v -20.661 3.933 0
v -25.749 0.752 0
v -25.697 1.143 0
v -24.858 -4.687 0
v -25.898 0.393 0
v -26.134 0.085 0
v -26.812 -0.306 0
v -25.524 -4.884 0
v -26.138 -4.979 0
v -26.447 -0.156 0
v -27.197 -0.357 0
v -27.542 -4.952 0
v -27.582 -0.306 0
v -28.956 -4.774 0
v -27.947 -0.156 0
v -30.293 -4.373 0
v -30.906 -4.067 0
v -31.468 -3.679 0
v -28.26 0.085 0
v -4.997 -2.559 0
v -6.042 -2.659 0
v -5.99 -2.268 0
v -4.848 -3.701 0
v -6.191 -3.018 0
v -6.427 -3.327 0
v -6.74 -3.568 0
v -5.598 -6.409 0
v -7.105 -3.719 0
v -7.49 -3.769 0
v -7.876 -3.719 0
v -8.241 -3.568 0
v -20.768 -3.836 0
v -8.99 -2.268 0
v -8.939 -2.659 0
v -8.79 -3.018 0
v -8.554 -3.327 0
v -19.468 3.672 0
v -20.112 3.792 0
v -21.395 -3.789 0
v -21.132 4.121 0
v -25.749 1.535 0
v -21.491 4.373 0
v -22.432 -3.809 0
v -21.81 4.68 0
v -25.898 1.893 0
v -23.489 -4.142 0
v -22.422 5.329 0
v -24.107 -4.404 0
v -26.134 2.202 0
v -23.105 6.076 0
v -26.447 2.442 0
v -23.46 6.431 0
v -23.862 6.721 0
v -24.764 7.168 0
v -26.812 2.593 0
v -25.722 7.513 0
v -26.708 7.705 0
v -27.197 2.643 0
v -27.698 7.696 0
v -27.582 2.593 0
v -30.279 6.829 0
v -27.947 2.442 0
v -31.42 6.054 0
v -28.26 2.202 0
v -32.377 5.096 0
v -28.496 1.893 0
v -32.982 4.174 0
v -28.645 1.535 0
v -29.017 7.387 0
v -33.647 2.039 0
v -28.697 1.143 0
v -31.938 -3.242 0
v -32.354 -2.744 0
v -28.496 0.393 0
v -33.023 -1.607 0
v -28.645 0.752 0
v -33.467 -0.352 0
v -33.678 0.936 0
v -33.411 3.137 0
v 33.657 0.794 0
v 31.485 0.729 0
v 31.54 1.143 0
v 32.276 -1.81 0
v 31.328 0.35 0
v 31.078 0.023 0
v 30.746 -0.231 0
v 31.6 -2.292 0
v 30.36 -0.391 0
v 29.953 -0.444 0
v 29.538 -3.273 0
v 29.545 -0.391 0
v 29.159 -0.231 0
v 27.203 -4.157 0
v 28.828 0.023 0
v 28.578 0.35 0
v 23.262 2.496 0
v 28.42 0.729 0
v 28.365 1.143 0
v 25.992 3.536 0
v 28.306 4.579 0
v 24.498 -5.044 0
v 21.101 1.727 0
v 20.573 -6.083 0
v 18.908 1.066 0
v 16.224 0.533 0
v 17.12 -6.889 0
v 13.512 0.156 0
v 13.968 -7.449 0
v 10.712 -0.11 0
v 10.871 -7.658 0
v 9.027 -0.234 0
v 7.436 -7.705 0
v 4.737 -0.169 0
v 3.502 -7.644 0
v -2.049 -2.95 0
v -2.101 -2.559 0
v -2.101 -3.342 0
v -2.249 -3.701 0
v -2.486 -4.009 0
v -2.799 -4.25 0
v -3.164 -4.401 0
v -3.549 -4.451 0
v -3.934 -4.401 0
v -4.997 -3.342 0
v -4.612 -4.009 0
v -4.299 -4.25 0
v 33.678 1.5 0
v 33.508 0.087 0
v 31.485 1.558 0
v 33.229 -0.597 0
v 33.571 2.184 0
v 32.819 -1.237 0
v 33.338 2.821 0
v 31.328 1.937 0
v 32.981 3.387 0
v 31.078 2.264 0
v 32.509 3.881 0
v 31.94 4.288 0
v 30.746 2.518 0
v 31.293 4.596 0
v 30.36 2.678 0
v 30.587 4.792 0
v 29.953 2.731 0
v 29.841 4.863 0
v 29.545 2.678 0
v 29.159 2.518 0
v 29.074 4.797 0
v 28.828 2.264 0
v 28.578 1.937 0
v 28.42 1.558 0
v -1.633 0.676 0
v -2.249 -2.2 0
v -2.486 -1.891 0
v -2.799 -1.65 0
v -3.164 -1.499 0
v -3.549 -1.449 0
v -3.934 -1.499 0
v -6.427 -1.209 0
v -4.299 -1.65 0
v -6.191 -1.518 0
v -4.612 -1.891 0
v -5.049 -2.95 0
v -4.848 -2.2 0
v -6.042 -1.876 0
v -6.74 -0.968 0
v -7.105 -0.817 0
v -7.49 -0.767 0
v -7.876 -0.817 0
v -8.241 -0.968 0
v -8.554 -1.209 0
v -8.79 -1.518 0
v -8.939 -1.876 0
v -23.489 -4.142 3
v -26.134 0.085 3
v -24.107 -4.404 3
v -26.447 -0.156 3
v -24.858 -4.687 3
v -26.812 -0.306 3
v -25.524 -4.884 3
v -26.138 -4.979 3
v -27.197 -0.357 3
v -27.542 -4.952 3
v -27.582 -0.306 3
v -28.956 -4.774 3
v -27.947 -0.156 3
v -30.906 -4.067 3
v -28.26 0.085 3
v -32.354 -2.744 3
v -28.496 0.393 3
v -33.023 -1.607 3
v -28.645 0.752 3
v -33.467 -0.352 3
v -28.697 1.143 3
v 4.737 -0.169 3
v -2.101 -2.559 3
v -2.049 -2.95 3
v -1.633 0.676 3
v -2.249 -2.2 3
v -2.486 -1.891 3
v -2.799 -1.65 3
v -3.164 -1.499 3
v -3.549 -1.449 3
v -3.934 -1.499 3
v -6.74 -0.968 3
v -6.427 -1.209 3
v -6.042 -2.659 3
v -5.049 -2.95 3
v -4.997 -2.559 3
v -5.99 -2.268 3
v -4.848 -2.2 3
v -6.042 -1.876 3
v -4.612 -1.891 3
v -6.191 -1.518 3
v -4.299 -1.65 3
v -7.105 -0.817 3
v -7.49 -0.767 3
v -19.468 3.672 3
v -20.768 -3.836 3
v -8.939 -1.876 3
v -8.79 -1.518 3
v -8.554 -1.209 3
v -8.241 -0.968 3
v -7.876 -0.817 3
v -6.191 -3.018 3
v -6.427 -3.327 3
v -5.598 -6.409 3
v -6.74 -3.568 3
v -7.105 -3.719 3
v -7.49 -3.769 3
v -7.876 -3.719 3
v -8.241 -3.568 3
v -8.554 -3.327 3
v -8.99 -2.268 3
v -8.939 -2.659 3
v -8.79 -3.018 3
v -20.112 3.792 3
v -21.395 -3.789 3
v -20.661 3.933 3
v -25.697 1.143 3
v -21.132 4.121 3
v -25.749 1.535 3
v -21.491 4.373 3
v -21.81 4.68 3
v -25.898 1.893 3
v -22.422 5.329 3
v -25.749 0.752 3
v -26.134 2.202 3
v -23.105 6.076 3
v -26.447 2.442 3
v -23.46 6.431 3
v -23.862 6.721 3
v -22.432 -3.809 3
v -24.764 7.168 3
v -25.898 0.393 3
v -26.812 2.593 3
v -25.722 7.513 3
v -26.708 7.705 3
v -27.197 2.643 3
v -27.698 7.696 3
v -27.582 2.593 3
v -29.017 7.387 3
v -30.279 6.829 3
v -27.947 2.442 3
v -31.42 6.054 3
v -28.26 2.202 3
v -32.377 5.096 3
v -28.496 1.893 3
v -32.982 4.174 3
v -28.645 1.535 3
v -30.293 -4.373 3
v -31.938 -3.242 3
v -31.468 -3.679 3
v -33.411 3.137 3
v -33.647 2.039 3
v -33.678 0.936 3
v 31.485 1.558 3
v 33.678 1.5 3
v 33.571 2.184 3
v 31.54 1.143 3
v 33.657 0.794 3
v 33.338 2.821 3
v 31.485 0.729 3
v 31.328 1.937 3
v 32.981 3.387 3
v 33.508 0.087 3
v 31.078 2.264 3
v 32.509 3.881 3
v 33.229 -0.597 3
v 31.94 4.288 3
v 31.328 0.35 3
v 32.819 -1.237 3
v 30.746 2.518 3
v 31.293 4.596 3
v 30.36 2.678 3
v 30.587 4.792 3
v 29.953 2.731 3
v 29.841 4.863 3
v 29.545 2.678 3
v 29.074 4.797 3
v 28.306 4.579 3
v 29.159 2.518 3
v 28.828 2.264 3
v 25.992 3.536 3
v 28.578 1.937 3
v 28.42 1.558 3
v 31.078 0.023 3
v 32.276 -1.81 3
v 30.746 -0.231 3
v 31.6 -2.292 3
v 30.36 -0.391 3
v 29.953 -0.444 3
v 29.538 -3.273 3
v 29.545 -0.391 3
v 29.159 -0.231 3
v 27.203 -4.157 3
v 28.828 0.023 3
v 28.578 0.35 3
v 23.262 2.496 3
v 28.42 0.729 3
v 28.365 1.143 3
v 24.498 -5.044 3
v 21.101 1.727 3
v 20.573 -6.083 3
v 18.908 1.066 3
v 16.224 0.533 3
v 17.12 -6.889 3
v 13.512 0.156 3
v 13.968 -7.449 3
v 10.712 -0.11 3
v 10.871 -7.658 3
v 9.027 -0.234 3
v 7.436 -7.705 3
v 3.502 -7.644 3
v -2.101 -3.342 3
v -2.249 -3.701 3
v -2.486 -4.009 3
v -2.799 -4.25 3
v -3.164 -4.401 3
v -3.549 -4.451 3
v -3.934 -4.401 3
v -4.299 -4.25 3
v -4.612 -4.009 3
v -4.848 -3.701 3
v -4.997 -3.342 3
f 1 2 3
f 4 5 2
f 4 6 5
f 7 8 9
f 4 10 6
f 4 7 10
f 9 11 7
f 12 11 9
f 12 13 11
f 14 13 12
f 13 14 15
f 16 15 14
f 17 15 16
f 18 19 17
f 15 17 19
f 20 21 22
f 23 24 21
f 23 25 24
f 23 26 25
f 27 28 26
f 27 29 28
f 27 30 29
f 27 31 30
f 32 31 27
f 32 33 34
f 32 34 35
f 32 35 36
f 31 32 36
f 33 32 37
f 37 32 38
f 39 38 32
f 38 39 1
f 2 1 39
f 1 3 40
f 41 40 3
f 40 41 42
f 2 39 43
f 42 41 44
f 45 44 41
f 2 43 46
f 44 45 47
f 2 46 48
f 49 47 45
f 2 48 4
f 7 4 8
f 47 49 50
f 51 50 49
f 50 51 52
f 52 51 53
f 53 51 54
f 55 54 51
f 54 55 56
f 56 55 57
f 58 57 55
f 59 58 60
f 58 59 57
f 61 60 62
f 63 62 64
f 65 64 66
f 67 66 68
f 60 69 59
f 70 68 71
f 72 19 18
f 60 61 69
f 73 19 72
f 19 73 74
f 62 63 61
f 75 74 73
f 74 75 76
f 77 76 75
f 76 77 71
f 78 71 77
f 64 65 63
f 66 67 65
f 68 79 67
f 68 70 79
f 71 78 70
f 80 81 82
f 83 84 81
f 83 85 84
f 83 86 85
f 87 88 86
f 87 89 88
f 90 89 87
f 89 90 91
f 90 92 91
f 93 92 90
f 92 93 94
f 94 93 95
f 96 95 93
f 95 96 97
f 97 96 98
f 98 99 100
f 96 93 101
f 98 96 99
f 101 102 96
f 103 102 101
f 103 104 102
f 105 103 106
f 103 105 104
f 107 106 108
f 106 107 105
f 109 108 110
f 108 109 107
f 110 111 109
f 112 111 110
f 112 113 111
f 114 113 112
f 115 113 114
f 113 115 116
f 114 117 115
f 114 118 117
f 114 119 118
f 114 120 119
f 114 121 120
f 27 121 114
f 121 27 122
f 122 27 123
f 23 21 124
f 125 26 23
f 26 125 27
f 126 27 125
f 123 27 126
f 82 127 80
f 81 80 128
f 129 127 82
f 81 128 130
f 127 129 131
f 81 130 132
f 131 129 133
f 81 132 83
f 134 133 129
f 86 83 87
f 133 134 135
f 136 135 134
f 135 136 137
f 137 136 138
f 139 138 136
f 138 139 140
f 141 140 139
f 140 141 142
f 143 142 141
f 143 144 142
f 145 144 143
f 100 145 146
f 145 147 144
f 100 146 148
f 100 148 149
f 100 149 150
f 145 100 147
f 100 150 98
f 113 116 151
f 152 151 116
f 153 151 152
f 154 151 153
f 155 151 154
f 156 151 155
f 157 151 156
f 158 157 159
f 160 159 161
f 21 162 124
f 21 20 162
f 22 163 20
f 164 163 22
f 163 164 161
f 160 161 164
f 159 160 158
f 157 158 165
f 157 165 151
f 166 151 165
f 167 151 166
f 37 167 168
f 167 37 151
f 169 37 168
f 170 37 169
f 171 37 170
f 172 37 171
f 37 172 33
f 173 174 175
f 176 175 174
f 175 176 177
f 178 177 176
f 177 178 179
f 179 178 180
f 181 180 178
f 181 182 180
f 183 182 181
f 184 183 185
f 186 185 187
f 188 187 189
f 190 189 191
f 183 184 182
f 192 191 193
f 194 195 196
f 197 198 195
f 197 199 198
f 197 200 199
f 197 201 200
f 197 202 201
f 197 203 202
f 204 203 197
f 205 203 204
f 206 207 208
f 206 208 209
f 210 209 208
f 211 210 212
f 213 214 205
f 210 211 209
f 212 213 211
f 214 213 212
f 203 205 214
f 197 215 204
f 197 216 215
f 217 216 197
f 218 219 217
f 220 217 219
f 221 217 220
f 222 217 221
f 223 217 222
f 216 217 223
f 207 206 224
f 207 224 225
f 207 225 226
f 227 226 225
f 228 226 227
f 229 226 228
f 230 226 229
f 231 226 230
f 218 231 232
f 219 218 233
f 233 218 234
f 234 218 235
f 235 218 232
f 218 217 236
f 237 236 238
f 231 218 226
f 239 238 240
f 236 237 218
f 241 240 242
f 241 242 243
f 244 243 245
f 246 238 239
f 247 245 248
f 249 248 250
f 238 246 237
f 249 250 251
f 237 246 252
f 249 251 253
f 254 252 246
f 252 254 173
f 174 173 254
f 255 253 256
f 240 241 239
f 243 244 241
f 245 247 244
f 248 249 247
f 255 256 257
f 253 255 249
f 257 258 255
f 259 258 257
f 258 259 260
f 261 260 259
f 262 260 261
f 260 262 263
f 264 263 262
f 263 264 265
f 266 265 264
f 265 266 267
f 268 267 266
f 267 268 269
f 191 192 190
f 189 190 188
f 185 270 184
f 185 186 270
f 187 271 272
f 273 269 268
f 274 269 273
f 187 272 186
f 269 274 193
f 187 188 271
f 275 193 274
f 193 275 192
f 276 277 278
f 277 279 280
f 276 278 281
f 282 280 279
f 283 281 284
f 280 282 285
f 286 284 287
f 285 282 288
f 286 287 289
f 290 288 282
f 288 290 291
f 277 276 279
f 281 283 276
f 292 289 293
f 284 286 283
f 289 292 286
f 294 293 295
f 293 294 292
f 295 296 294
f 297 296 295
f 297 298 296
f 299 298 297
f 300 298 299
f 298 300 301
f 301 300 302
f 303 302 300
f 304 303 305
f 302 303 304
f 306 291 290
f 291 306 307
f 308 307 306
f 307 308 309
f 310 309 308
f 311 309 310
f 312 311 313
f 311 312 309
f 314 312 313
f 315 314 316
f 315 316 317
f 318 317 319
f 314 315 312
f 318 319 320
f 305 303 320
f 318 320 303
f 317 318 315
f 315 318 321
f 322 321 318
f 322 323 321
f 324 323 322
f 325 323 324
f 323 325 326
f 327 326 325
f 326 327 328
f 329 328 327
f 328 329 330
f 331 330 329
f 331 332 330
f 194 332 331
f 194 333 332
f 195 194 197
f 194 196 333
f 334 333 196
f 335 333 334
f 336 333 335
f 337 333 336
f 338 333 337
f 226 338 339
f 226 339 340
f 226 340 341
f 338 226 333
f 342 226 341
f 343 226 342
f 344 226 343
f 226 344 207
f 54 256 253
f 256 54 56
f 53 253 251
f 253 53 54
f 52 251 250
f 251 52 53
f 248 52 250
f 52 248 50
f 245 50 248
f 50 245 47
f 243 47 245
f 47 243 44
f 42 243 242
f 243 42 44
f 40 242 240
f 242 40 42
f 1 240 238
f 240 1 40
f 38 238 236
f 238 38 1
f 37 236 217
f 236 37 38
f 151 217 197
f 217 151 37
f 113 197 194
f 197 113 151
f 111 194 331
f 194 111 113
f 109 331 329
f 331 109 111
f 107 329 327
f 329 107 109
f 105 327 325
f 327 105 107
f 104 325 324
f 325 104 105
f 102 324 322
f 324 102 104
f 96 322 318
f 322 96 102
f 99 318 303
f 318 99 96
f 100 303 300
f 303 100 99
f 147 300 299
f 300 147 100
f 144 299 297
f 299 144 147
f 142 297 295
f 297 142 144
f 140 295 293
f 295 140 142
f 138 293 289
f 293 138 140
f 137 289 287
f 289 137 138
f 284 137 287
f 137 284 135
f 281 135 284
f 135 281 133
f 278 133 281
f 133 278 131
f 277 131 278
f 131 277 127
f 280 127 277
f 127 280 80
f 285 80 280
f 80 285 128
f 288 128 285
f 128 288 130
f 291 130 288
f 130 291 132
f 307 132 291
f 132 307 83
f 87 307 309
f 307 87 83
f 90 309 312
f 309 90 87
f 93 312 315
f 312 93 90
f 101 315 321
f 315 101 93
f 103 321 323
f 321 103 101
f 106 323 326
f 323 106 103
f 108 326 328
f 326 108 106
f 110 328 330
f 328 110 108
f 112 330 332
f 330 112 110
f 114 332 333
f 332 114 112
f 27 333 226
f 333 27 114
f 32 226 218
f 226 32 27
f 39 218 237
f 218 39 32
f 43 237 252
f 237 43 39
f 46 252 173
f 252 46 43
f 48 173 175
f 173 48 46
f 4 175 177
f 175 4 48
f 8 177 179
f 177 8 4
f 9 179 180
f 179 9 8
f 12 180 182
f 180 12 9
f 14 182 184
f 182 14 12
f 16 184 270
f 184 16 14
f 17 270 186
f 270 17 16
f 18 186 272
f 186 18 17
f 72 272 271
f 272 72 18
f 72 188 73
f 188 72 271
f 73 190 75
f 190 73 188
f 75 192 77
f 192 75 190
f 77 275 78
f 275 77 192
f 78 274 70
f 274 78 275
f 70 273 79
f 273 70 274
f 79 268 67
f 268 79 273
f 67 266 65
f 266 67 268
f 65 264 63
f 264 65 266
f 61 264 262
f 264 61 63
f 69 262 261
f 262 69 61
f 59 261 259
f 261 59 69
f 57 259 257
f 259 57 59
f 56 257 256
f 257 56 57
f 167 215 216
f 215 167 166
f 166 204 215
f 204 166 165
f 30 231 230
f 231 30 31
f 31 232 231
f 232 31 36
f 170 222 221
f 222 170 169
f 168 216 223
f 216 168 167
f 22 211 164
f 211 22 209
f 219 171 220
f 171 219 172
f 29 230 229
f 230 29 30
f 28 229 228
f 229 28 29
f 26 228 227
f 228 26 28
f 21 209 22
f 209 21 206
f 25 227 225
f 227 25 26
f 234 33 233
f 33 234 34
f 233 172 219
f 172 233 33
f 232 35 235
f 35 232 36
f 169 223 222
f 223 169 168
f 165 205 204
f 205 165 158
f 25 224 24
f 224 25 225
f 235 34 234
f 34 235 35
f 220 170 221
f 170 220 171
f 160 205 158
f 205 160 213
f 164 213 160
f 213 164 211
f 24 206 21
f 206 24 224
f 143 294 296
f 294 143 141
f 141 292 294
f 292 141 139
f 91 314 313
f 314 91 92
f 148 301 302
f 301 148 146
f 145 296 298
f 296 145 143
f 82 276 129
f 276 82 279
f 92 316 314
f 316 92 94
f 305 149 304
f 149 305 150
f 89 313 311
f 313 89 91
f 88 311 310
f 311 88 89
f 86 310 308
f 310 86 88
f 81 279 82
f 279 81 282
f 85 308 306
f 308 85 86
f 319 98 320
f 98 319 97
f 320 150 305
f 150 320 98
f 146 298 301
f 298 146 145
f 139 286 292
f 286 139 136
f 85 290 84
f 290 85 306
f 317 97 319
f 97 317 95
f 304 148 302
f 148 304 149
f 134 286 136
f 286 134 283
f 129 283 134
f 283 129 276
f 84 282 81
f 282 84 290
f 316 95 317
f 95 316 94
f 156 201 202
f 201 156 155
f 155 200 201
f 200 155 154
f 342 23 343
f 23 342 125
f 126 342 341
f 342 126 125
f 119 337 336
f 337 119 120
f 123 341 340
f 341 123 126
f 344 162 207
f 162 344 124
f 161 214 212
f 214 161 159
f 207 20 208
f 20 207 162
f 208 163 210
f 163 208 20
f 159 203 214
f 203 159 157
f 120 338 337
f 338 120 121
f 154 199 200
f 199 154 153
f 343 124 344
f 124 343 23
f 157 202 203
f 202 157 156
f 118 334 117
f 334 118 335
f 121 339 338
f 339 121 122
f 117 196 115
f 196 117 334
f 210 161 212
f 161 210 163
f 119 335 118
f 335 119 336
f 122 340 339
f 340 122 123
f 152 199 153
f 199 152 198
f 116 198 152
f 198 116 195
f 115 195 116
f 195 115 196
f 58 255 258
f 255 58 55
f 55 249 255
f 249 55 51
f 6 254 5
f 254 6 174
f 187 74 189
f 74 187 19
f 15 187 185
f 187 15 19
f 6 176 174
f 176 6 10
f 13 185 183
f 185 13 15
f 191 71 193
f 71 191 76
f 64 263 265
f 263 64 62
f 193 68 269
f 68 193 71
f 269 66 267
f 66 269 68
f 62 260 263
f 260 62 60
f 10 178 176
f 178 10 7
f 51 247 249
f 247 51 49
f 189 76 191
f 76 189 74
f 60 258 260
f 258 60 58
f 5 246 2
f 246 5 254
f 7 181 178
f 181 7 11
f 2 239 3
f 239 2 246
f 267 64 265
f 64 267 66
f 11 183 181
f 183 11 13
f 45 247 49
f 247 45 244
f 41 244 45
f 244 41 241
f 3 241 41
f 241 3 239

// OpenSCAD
// Module names are of the form poly_<inkscape-path-id>().  As a result,
// you can associate a polygon in this OpenSCAD program with the corresponding
// SVG element in the Inkscape document by looking for the XML element with
// the attribute id="inkscape-path-id".

// fudge value is used to ensure that subtracted solids are a tad taller
// in the z dimension than the polygon being subtracted from.  This helps
// keep the resulting .stl file manifold.
fudge = 0.1;

module poly_path908(h)
{
  scale([25.4/96, -25.4/96, 1]) union()
  {
    difference()
    {
       linear_extrude(height=h)
         polygon([[-73.581436,-13.879093],[-6.170156,-2.554193],[17.905444,0.639507],[34.119634,0.885207],[40.485441,0.417420],[51.070824,-0.588793],[61.320745,-2.015768],[71.461384,-4.028193],[79.752527,-6.526430],[87.921234,-9.432893],[98.239354,-13.363593],[106.983034,-17.306693],[109.887703,-18.128907],[112.785433,-18.381127],[115.604329,-18.112225],[118.272497,-17.371068],[120.718042,-16.206527],[122.869070,-14.667471],[124.653685,-12.802770],[125.999994,-10.661293],[126.880968,-8.252727],[127.285183,-5.670999],[127.207875,-3.001681],[126.644282,-0.330343],[125.589642,2.257445],[124.039190,4.676113],[121.988165,6.840091],[119.431804,8.663807],[111.640343,12.368834],[102.812810,15.713045],[92.588954,19.064707],[77.754966,22.990670],[64.707404,26.037921],[52.790504,28.154507],[41.088375,28.944410],[28.105664,29.122782],[13.237724,28.891507],[-21.155986,24.223807],[-78.493704,14.498807],[-80.862968,14.320632],[-84.784372,14.397007],[-88.776839,15.656670],[-91.112565,16.644607],[-93.953087,17.713432],[-96.466736,18.458585],[-98.787529,18.819007],[-104.095858,18.717473],[-109.438842,18.043332],[-114.492392,16.528704],[-116.809352,15.372494],[-118.932421,13.905707],[-120.709517,12.253676],[-122.284216,10.370793],[-124.812361,6.072295],[-126.488726,1.329852],[-127.285183,-3.536893],[-127.171279,-7.705254],[-126.276320,-11.855230],[-124.657446,-15.776738],[-122.371793,-19.259693],[-118.752124,-22.879713],[-114.439094,-25.809030],[-109.670364,-27.920379],[-104.683595,-29.086493],[-100.945516,-29.122782],[-97.215306,-28.394905],[-93.595617,-27.091573],[-90.189099,-25.401493],[-88.665683,-24.305879],[-87.325983,-22.963055],[-84.744810,-20.141593],[-82.432460,-17.688830],[-81.226291,-16.529429],[-79.870983,-15.574693],[-78.087927,-14.864087],[-76.014819,-14.330743],[-73.581436,-13.879093]]);
       translate([0, 0, -fudge])
         linear_extrude(height=h+2*fudge)
           polygon([[-22.640406,8.571607],[-22.835922,7.091717],[-23.398824,5.735538],[-24.290936,4.569254],[-25.474079,3.659051],[-26.853685,3.088974],[-28.309697,2.898948],[-29.765709,3.088974],[-31.145315,3.659051],[-32.328458,4.569254],[-33.220569,5.735538],[-33.783471,7.091717],[-33.978987,8.571607],[-33.783471,10.051497],[-33.220569,11.407676],[-32.328458,12.573960],[-31.145315,13.484163],[-29.765709,14.054240],[-28.309697,14.244266],[-26.853685,14.054240],[-25.474079,13.484163],[-24.290936,12.573960],[-23.398824,11.407676],[-22.835922,10.051497],[-22.640406,8.571607],[-22.640406,8.571607]]);
       translate([0, 0, -fudge])
         linear_extrude(height=h+2*fudge)
           polygon([[119.207424,-4.321493],[118.999731,-5.886999],[118.403576,-7.321493],[117.459345,-8.555025],[116.207424,-9.517645],[114.747809,-10.120531],[113.207424,-10.321493],[111.667038,-10.120531],[110.207424,-9.517645],[108.955502,-8.555025],[108.011271,-7.321493],[107.415116,-5.886999],[107.207424,-4.321493],[107.415116,-2.755987],[108.011271,-1.321493],[108.955502,-0.087961],[110.207424,0.874659],[111.667038,1.477545],[113.207424,1.678507],[114.747809,1.477545],[116.207424,0.874659],[117.459345,-0.087961],[118.403576,-1.321493],[118.999731,-2.755987],[119.207424,-4.321493]]);
       translate([0, 0, -fudge])
         linear_extrude(height=h+2*fudge)
           polygon([[-7.743836,11.150207],[-7.939188,9.670167],[-8.502002,8.313819],[-9.394096,7.147368],[-10.577290,6.237020],[-11.956996,5.666849],[-13.413126,5.476791],[-14.869257,5.666849],[-16.248963,6.237020],[-17.432157,7.147368],[-18.324251,8.313819],[-18.887064,9.670167],[-19.082416,11.150207],[-18.887064,12.630248],[-18.324251,13.986595],[-17.432157,15.153046],[-16.248963,16.063394],[-14.869257,16.633565],[-13.413126,16.823623],[-11.956996,16.633565],[-10.577290,16.063394],[-9.394096,15.153046],[-8.502002,13.986595],[-7.939188,12.630248],[-7.743836,11.150207],[-7.743836,11.150207]]);
       translate([0, 0, -fudge])
         linear_extrude(height=h+2*fudge)
           polygon([[-97.123292,-4.321493],[-97.319538,-5.800711],[-97.882833,-7.156139],[-98.775020,-8.321681],[-99.957938,-9.231243],[-101.337101,-9.800899],[-102.792584,-9.990784],[-104.248066,-9.800899],[-105.627230,-9.231243],[-106.810148,-8.321681],[-107.702334,-7.156139],[-108.265630,-5.800711],[-108.461875,-4.321493],[-108.265630,-2.842275],[-107.702334,-1.486847],[-106.810148,-0.321305],[-105.627230,0.588257],[-104.248066,1.157913],[-102.792584,1.347799],[-101.337101,1.157913],[-99.957938,0.588257],[-98.775020,-0.321305],[-97.882833,-1.486847],[-97.319538,-2.842275],[-97.123292,-4.321493],[-97.123292,-4.321493]]);
    }
    linear_extrude(height=h)
      polygon([[-3.254156,27.522907],[-2.803126,27.593907]]);
  }
}

module inkscape(h)
{

poly_path908(h);
}

inkscape(3);
